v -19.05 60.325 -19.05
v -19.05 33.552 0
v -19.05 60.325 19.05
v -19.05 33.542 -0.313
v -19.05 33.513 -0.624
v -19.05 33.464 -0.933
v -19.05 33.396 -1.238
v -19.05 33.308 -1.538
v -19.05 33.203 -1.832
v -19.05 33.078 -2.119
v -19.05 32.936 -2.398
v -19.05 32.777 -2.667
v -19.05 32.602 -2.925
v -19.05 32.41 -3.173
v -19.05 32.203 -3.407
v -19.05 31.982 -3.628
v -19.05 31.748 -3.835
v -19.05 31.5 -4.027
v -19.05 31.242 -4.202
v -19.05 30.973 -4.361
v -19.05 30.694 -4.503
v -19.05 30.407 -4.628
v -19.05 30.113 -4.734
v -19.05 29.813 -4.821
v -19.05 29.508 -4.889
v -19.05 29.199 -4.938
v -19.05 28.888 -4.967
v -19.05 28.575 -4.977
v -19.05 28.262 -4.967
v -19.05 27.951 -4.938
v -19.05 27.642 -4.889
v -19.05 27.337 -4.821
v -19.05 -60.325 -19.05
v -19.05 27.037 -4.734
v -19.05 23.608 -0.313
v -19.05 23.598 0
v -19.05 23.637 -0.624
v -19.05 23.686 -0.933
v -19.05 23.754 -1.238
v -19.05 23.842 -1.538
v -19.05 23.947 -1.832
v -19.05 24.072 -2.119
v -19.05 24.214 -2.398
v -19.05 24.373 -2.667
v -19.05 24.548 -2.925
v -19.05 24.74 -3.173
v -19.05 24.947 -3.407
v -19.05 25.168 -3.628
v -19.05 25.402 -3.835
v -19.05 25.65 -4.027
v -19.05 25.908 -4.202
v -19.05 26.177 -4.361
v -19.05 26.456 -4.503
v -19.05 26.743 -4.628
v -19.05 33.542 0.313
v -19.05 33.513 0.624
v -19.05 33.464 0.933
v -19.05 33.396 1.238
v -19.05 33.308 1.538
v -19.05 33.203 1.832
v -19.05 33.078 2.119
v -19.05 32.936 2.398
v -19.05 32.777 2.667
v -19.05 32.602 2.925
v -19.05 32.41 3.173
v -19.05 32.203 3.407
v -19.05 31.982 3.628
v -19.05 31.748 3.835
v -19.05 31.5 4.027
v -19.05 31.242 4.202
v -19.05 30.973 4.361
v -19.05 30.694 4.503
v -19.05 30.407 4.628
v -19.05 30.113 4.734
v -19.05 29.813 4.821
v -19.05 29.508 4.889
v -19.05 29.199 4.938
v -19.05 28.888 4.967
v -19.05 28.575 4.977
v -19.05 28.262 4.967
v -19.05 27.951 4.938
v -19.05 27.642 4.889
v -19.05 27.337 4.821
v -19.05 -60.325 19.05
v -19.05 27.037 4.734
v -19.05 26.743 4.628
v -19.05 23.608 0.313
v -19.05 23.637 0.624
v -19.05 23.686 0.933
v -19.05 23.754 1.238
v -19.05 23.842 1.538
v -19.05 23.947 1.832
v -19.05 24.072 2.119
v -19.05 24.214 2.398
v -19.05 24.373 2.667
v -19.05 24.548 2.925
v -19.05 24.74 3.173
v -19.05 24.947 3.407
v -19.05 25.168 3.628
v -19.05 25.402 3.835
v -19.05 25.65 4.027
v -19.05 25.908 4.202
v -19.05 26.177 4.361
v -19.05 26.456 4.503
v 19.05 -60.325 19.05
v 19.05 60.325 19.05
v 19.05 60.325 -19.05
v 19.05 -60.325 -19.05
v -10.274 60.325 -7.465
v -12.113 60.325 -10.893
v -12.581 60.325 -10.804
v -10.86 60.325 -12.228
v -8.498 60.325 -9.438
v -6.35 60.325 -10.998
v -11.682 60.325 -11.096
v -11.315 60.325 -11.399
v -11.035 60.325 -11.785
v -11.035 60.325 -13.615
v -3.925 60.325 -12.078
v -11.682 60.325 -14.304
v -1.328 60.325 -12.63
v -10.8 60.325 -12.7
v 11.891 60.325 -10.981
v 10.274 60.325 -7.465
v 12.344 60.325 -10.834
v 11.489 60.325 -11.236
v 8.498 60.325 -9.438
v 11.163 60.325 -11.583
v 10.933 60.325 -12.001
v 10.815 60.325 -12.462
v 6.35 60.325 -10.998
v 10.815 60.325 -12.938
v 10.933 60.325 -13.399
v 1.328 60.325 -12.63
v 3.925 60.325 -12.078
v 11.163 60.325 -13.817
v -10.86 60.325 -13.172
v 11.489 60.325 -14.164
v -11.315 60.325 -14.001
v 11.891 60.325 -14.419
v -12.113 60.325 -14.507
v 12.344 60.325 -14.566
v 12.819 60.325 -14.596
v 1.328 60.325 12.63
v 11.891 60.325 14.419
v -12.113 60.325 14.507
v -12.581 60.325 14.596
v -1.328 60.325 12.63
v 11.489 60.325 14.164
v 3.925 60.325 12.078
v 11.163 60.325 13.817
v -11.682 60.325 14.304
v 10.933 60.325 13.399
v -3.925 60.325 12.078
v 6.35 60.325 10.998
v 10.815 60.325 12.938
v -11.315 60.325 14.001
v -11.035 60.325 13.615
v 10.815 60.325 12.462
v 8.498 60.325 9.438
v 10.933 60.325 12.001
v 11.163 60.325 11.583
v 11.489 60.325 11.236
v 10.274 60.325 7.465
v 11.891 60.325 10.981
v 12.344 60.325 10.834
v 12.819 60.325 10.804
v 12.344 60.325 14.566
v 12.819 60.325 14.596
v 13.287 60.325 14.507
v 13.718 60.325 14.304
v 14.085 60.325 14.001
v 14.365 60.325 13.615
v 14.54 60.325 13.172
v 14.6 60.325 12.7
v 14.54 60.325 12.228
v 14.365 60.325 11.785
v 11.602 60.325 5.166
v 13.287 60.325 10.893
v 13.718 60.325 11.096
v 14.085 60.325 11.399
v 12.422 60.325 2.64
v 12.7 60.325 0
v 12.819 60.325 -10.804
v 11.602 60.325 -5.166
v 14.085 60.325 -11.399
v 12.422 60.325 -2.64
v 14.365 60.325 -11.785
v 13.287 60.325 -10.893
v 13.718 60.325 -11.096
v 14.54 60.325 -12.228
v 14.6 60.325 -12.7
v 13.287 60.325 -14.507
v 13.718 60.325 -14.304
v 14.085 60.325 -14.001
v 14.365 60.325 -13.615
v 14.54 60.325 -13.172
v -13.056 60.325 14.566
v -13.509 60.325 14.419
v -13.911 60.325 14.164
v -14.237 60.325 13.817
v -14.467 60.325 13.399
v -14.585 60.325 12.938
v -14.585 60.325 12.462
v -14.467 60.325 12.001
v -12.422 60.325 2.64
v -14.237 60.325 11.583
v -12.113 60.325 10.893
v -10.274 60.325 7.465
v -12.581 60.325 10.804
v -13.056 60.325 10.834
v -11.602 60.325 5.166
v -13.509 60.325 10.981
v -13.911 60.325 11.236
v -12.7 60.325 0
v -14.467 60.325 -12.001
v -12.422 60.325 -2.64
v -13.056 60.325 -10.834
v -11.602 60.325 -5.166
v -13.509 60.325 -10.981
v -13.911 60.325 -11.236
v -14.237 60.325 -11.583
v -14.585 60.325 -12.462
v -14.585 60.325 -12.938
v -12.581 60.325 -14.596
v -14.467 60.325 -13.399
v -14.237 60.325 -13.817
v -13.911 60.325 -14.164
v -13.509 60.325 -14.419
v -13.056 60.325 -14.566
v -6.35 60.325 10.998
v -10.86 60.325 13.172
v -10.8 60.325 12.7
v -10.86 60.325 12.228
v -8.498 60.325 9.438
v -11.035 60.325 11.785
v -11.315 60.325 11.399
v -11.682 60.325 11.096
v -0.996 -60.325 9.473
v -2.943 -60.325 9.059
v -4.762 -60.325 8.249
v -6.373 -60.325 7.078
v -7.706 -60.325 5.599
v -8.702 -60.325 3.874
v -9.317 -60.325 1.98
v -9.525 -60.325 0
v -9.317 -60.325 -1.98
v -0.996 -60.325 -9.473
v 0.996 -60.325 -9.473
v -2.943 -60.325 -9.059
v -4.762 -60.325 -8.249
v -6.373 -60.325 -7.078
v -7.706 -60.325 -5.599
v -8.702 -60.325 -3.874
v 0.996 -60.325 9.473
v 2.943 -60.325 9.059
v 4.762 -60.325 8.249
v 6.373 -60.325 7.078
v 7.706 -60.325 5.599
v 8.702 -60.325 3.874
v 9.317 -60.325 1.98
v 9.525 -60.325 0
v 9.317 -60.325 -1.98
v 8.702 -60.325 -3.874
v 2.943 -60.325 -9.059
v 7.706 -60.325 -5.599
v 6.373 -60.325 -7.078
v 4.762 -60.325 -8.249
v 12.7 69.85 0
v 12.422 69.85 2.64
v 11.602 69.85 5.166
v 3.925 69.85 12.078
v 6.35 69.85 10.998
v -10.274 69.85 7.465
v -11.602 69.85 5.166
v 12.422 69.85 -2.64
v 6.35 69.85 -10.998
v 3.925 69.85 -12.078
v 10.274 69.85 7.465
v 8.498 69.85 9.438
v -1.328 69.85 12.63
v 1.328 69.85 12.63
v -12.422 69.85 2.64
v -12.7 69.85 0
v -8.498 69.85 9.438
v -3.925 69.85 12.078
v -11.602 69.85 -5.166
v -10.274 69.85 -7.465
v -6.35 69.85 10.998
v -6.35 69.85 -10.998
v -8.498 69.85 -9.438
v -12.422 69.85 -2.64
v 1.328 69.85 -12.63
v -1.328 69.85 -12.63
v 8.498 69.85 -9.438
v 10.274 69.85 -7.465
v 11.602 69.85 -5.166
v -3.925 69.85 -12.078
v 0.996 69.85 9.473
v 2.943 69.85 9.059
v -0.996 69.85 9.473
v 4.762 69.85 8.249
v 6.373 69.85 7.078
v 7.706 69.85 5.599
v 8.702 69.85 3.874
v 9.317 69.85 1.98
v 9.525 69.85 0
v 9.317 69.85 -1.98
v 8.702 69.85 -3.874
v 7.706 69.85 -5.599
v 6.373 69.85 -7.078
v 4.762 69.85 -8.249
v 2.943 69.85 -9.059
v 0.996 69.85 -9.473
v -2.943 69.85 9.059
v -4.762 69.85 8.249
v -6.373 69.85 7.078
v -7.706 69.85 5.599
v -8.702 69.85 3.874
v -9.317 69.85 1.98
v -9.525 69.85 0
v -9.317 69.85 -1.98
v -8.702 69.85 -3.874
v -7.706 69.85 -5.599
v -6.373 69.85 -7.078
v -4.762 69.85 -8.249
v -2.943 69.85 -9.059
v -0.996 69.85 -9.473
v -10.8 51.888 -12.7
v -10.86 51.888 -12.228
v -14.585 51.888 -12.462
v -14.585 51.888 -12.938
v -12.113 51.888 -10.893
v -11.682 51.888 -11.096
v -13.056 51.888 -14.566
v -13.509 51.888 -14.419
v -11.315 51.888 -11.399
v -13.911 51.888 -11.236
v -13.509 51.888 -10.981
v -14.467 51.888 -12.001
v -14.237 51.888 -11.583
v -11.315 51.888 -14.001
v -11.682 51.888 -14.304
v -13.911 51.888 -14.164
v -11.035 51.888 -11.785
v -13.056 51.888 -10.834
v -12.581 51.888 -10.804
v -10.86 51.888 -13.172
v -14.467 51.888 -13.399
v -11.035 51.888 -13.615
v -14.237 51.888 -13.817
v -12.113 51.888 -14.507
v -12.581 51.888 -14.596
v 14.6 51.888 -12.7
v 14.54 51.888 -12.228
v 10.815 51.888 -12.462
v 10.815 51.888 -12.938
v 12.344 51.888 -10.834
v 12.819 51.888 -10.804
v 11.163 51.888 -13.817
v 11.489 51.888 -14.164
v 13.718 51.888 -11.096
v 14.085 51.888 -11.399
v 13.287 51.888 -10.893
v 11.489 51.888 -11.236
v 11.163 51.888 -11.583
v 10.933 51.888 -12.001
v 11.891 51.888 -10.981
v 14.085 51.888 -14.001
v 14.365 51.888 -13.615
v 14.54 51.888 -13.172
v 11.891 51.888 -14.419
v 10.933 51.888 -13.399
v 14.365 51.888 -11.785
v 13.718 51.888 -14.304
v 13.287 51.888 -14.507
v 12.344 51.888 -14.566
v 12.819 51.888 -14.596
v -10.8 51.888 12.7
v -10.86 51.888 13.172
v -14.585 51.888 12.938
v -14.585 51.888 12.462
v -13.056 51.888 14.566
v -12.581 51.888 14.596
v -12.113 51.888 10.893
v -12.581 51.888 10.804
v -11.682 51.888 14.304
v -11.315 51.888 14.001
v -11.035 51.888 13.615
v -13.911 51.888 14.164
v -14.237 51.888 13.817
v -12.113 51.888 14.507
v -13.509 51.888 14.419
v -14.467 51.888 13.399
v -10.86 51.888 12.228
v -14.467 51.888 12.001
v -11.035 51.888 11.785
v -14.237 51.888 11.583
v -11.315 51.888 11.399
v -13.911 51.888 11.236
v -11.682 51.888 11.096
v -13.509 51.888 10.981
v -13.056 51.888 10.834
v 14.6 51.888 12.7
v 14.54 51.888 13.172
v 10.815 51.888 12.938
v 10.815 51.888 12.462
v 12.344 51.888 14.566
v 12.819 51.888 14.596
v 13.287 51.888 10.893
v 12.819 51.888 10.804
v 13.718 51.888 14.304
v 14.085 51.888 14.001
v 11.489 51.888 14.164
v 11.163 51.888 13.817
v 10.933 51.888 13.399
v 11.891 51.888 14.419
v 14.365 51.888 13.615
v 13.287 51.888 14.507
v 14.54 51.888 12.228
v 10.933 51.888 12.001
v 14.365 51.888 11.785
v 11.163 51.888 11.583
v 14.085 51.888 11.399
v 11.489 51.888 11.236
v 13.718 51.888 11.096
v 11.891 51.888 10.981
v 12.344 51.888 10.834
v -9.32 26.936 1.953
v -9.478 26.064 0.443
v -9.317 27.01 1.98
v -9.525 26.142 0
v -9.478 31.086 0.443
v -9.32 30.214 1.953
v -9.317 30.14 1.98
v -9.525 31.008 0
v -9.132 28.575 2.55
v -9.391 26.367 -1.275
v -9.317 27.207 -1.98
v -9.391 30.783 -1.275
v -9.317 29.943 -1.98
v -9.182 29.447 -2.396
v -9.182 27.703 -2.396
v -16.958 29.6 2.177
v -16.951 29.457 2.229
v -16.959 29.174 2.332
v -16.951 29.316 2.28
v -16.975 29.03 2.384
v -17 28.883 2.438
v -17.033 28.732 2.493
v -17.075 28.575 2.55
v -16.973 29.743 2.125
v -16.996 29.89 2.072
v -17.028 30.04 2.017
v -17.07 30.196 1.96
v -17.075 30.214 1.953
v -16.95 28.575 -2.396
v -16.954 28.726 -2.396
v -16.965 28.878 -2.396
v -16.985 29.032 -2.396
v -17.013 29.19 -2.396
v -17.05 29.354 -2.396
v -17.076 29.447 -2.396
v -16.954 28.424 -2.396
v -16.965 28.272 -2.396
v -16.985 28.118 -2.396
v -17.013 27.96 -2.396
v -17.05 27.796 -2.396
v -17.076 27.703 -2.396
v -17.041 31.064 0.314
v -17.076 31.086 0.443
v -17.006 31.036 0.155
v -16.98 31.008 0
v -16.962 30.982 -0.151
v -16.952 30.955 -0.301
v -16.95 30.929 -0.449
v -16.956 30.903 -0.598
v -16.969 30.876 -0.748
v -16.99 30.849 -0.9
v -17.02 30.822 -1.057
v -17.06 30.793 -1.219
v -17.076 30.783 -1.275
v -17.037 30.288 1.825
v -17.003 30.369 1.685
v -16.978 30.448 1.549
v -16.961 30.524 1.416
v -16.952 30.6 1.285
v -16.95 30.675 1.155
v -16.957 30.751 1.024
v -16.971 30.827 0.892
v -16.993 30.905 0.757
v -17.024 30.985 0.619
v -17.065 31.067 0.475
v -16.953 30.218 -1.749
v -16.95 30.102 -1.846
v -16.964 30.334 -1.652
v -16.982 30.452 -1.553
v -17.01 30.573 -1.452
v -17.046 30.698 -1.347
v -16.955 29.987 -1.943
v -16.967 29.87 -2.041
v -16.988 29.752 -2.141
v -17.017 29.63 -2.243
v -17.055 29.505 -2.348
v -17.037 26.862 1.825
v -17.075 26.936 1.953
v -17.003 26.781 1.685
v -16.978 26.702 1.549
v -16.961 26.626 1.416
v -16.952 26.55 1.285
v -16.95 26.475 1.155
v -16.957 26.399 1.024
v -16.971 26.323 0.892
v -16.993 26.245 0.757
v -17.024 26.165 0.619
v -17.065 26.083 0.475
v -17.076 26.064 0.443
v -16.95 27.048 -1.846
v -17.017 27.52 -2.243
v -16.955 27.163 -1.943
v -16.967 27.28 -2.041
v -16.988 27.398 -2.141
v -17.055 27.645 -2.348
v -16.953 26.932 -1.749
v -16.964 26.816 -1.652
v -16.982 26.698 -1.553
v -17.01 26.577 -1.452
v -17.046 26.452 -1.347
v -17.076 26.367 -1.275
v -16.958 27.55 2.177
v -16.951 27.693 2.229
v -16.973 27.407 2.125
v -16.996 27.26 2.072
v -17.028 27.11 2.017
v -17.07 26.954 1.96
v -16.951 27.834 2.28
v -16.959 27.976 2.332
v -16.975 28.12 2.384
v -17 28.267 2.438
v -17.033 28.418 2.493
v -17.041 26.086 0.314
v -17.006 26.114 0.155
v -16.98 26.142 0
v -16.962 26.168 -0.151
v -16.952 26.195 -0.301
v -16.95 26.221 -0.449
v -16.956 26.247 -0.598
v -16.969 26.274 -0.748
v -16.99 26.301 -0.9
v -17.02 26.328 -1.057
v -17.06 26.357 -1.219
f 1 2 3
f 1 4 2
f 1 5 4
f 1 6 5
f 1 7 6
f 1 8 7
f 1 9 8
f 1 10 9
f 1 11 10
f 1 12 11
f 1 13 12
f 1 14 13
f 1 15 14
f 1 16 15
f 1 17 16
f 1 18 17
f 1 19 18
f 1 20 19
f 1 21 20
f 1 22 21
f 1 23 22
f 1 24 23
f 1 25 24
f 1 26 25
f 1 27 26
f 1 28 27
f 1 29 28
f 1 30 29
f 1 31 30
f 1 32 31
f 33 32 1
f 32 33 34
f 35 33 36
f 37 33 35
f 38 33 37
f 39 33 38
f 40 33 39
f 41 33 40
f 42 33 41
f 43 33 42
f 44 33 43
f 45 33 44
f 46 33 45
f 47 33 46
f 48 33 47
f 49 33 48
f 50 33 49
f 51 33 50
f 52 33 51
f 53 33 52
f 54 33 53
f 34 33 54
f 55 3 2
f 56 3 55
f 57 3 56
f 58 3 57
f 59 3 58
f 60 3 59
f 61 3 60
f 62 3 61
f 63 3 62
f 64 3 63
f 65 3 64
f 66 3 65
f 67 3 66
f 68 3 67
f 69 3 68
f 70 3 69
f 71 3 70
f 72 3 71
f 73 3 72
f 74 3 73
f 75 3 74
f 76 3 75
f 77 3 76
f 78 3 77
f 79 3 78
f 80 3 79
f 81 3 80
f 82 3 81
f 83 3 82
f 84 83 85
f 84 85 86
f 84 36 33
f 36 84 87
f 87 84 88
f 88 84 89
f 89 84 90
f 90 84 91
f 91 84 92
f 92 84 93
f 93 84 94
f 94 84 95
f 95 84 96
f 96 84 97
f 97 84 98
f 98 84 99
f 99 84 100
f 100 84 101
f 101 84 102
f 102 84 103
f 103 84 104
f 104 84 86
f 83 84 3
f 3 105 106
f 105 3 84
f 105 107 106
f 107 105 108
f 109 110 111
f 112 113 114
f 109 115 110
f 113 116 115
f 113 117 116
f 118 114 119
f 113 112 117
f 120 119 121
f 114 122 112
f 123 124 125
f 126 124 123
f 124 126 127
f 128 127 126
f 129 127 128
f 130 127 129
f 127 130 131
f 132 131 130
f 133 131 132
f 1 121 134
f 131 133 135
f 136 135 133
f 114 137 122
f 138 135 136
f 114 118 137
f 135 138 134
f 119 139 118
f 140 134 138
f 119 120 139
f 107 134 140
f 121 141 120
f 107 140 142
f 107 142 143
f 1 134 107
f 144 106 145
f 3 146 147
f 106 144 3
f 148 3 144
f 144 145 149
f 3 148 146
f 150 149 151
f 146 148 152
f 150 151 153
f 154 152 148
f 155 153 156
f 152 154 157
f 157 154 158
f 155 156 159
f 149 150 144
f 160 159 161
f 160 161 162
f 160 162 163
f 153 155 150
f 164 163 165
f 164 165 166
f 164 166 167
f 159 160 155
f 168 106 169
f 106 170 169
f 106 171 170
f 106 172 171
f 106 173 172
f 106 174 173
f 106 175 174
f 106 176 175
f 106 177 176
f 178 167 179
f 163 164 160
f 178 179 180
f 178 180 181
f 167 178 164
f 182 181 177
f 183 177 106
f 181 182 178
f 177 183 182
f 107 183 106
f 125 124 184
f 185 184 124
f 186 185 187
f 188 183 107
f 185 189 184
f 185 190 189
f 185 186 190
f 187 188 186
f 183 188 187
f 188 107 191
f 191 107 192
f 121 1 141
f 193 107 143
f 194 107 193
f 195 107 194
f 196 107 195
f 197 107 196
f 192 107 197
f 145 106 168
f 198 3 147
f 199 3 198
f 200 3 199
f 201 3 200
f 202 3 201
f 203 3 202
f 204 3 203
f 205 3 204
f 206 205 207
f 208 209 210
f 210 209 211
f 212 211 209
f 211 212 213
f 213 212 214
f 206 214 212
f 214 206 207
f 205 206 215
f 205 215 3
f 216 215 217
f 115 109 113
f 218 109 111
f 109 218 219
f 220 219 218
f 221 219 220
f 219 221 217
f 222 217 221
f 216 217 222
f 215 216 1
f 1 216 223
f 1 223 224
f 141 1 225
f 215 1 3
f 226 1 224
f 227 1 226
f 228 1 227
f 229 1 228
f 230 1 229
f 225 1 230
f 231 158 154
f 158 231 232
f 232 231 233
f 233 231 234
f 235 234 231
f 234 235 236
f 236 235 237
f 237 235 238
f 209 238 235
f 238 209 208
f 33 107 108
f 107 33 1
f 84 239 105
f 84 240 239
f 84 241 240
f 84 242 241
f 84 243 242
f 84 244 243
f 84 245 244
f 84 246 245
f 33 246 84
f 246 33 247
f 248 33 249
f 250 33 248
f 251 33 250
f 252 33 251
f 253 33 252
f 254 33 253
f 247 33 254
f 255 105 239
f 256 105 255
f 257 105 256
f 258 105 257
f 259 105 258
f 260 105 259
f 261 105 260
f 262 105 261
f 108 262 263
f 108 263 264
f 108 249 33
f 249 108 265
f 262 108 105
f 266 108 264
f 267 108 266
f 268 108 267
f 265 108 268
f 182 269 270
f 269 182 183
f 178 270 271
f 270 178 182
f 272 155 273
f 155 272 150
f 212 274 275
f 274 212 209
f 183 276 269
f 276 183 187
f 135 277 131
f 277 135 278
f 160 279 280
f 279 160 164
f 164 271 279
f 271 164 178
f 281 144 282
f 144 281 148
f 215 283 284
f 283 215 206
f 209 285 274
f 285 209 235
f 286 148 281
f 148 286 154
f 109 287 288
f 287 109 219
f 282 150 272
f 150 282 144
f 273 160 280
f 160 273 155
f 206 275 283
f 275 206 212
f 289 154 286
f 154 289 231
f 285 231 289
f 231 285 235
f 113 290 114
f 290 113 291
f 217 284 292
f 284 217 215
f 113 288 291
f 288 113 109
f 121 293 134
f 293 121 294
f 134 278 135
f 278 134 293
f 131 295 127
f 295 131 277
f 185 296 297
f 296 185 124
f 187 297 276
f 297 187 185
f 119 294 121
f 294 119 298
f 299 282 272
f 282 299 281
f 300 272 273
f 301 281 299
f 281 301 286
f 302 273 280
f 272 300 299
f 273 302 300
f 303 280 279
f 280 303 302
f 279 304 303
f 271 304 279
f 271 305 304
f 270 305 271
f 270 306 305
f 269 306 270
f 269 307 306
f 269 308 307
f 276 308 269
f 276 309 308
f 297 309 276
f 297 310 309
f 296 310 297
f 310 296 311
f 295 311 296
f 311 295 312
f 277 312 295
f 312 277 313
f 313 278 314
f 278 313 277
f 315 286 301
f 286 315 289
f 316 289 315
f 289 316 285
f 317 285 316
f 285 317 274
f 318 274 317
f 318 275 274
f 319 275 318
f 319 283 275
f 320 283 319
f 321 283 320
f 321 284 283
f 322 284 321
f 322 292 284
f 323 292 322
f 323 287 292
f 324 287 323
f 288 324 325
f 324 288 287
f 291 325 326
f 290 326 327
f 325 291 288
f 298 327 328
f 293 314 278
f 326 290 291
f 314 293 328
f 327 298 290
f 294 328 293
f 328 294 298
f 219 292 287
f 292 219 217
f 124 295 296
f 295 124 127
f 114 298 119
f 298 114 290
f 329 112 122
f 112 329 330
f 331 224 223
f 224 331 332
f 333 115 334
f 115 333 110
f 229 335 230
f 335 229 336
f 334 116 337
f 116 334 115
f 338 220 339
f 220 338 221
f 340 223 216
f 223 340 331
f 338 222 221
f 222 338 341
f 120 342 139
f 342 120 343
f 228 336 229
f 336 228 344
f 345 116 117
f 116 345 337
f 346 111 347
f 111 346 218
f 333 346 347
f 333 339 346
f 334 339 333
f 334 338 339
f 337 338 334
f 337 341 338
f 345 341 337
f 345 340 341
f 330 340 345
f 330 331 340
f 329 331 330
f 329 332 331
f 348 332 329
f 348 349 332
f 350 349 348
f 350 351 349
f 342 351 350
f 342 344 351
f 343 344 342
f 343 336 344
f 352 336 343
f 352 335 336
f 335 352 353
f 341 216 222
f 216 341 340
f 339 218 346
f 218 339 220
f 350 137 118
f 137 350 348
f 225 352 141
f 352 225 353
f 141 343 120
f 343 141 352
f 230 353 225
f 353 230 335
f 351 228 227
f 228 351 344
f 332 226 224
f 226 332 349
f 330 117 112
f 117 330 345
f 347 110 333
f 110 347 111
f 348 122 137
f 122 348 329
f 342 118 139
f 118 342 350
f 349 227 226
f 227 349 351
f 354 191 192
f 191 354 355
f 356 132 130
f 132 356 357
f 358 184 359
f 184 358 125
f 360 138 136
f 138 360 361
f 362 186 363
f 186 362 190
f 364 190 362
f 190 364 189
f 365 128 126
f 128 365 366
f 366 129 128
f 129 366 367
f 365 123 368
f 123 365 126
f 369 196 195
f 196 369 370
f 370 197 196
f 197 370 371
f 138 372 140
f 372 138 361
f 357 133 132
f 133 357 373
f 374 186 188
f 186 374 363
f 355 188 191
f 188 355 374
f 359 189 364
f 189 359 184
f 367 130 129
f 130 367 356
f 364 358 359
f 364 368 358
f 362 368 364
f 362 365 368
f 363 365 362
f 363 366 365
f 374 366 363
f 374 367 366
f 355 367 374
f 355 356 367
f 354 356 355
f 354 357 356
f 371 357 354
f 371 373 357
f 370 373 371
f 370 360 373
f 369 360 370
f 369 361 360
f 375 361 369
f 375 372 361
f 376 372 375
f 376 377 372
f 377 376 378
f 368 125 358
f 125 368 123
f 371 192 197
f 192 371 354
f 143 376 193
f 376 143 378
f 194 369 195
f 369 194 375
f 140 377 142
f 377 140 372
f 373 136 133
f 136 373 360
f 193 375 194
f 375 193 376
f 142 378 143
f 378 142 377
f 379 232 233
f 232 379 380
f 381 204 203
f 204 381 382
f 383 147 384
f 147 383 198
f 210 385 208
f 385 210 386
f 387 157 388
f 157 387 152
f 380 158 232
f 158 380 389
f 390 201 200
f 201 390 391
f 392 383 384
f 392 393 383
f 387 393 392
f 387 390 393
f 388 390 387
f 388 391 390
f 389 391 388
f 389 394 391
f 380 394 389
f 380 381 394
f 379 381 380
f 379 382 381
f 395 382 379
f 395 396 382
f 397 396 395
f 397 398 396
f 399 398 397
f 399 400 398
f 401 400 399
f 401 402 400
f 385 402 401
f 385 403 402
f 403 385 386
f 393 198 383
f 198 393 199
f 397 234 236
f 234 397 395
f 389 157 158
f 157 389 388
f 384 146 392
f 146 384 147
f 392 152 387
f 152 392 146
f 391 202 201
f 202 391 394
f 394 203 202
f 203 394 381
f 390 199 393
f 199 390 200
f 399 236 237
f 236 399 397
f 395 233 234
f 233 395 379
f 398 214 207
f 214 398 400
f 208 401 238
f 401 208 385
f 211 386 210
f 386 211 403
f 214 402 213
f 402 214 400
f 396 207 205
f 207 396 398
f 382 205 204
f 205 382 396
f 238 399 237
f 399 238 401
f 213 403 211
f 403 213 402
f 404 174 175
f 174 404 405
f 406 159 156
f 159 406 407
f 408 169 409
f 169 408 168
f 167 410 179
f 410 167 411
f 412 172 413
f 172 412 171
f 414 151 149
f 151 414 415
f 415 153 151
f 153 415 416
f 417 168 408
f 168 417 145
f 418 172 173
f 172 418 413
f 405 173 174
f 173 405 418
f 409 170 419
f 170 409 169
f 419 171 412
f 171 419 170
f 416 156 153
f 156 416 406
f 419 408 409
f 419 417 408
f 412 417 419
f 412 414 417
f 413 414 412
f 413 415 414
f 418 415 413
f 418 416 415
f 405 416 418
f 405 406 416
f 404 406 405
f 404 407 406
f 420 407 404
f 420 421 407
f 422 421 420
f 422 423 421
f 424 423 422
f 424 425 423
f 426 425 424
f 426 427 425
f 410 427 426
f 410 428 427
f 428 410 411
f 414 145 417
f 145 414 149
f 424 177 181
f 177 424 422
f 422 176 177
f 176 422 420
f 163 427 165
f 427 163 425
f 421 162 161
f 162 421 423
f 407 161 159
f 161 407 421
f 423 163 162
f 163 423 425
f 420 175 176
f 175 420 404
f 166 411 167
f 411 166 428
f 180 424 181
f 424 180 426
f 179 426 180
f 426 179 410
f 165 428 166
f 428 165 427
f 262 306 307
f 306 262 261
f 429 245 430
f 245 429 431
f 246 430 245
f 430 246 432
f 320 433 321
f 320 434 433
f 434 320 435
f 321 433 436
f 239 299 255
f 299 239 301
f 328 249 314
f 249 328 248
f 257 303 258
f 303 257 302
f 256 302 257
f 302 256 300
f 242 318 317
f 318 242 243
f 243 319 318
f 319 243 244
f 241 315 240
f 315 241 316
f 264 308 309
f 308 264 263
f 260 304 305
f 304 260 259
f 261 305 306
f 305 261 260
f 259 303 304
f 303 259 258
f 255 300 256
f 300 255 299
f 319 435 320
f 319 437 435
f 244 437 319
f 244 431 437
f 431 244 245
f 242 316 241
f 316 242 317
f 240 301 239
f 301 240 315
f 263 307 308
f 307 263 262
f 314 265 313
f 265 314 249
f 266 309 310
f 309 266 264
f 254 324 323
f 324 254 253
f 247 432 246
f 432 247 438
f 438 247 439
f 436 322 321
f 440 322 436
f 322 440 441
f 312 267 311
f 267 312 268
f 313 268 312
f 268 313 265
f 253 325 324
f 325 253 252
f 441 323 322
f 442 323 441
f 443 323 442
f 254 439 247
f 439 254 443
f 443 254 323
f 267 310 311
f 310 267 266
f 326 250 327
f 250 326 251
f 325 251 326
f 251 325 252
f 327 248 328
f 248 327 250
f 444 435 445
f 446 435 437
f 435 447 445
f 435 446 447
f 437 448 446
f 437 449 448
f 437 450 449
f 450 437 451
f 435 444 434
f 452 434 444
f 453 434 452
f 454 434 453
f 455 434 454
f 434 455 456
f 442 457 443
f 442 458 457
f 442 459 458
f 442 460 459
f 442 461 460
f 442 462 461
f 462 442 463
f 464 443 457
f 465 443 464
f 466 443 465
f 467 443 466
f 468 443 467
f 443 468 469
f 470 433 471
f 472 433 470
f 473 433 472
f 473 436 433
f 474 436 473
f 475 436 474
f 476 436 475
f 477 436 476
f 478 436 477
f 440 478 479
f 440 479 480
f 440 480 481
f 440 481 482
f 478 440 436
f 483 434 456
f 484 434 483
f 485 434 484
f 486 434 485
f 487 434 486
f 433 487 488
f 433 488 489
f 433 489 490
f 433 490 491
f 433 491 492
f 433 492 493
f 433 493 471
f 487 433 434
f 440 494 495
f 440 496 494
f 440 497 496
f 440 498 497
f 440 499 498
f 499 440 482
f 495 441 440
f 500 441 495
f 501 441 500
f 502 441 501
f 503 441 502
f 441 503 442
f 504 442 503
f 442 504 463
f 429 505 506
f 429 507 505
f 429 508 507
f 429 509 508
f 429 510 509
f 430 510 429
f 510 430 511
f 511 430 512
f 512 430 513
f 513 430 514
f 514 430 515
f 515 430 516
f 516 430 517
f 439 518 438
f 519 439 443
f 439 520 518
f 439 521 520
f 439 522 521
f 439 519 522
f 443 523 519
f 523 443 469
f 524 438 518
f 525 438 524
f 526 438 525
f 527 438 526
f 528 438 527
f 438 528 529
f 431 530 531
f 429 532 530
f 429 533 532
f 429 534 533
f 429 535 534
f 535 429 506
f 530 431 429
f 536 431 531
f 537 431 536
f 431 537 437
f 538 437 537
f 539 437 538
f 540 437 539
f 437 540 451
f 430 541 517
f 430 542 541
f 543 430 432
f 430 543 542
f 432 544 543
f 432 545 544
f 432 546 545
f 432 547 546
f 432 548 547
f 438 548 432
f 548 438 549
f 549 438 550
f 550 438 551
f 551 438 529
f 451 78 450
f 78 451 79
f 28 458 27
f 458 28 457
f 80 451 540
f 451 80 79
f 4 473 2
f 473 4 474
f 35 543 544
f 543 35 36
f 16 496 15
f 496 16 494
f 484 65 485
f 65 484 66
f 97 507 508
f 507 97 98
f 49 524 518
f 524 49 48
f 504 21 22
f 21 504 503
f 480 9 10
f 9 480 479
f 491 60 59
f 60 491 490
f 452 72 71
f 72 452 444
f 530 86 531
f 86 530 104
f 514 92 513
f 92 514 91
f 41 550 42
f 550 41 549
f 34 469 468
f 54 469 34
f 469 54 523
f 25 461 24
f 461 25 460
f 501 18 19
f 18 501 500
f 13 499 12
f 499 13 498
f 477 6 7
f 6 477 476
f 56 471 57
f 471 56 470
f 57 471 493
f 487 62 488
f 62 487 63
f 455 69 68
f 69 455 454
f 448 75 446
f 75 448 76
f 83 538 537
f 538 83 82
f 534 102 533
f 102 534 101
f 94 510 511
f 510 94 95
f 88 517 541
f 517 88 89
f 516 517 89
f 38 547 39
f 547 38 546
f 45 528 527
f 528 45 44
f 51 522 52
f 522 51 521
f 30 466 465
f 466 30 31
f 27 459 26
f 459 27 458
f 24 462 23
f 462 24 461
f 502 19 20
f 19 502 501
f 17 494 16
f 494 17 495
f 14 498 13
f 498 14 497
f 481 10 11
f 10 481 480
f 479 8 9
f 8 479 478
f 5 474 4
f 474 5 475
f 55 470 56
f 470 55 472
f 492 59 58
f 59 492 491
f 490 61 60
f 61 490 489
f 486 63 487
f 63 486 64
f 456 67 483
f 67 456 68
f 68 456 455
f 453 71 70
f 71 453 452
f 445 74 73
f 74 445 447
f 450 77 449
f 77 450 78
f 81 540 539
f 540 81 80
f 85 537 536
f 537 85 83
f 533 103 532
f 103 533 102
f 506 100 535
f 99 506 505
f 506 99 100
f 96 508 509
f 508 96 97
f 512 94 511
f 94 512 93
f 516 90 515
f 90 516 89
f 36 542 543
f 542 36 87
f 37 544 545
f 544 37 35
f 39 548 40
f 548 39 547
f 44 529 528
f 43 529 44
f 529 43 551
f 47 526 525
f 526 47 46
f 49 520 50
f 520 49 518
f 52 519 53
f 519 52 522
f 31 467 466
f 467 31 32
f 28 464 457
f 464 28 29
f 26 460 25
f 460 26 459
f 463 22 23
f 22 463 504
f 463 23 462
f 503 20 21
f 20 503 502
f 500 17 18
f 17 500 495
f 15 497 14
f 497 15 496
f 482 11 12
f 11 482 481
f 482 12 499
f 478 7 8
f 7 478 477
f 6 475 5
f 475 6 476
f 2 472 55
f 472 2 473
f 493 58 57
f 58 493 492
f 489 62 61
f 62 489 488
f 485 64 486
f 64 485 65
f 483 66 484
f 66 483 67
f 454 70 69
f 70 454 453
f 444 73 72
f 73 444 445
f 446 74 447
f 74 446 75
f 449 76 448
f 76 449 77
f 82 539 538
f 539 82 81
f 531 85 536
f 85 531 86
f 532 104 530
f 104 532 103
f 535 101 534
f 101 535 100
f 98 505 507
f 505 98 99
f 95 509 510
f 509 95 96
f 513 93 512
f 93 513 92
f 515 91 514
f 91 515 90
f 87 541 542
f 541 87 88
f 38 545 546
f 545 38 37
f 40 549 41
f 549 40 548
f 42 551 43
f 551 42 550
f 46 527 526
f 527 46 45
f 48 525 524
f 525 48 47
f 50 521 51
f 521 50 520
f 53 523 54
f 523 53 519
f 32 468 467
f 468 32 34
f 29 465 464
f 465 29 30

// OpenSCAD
inch=25.4;

module index_housing(length=(5 + 1/8)*inch, blockSize=(1 + 1/2)*inch,
     bossLength=3/8*inch, bossD=inch,
     id=0.750*inch, screwD=3.8, screwDepth=5/16*inch, screwGap=inch,
	  sideHoleD=5.1, sideHolePos=(1+1/4)*inch) {
     difference() {
	  union() {
	       cube([blockSize, length-bossLength, blockSize], center=true);
	       translate([0,bossLength/2,0]) {
		    rotate([90,0,0]) {
			 cylinder(d=bossD, h=length, center=true);
		    }
	       }
	  }
	  // Through holes
	  rotate([90,0,0]) {
	       cylinder(d=id, h=length*2, center=true);
	       for (y=[-1,1]) {
		    for (x=[-1,1]) {
			 translate([x*screwGap/2,y*screwGap/2,
				    -length/2+bossLength/2+screwDepth/2])
			      cylinder(d=screwD, h=screwDepth+1, center=true, $fn=25);
		    }
	       }
	  }
	  // side hole
	  rotate([0,-90,0]) translate([0,length/2-bossLength/2-sideHolePos,0]) {
	  cylinder(d=sideHoleD, h=blockSize, center=false);
	  // I fudged the 82 degree csk should really pass that angle as a parameter and do trig.
	  translate([0,0,15])
	       cylinder(d2=sideHoleD*2, d1=0, h=blockSize/2+0.1-15, center=false, $fn=100);
	  
	  }
    }
}

index_housing();
